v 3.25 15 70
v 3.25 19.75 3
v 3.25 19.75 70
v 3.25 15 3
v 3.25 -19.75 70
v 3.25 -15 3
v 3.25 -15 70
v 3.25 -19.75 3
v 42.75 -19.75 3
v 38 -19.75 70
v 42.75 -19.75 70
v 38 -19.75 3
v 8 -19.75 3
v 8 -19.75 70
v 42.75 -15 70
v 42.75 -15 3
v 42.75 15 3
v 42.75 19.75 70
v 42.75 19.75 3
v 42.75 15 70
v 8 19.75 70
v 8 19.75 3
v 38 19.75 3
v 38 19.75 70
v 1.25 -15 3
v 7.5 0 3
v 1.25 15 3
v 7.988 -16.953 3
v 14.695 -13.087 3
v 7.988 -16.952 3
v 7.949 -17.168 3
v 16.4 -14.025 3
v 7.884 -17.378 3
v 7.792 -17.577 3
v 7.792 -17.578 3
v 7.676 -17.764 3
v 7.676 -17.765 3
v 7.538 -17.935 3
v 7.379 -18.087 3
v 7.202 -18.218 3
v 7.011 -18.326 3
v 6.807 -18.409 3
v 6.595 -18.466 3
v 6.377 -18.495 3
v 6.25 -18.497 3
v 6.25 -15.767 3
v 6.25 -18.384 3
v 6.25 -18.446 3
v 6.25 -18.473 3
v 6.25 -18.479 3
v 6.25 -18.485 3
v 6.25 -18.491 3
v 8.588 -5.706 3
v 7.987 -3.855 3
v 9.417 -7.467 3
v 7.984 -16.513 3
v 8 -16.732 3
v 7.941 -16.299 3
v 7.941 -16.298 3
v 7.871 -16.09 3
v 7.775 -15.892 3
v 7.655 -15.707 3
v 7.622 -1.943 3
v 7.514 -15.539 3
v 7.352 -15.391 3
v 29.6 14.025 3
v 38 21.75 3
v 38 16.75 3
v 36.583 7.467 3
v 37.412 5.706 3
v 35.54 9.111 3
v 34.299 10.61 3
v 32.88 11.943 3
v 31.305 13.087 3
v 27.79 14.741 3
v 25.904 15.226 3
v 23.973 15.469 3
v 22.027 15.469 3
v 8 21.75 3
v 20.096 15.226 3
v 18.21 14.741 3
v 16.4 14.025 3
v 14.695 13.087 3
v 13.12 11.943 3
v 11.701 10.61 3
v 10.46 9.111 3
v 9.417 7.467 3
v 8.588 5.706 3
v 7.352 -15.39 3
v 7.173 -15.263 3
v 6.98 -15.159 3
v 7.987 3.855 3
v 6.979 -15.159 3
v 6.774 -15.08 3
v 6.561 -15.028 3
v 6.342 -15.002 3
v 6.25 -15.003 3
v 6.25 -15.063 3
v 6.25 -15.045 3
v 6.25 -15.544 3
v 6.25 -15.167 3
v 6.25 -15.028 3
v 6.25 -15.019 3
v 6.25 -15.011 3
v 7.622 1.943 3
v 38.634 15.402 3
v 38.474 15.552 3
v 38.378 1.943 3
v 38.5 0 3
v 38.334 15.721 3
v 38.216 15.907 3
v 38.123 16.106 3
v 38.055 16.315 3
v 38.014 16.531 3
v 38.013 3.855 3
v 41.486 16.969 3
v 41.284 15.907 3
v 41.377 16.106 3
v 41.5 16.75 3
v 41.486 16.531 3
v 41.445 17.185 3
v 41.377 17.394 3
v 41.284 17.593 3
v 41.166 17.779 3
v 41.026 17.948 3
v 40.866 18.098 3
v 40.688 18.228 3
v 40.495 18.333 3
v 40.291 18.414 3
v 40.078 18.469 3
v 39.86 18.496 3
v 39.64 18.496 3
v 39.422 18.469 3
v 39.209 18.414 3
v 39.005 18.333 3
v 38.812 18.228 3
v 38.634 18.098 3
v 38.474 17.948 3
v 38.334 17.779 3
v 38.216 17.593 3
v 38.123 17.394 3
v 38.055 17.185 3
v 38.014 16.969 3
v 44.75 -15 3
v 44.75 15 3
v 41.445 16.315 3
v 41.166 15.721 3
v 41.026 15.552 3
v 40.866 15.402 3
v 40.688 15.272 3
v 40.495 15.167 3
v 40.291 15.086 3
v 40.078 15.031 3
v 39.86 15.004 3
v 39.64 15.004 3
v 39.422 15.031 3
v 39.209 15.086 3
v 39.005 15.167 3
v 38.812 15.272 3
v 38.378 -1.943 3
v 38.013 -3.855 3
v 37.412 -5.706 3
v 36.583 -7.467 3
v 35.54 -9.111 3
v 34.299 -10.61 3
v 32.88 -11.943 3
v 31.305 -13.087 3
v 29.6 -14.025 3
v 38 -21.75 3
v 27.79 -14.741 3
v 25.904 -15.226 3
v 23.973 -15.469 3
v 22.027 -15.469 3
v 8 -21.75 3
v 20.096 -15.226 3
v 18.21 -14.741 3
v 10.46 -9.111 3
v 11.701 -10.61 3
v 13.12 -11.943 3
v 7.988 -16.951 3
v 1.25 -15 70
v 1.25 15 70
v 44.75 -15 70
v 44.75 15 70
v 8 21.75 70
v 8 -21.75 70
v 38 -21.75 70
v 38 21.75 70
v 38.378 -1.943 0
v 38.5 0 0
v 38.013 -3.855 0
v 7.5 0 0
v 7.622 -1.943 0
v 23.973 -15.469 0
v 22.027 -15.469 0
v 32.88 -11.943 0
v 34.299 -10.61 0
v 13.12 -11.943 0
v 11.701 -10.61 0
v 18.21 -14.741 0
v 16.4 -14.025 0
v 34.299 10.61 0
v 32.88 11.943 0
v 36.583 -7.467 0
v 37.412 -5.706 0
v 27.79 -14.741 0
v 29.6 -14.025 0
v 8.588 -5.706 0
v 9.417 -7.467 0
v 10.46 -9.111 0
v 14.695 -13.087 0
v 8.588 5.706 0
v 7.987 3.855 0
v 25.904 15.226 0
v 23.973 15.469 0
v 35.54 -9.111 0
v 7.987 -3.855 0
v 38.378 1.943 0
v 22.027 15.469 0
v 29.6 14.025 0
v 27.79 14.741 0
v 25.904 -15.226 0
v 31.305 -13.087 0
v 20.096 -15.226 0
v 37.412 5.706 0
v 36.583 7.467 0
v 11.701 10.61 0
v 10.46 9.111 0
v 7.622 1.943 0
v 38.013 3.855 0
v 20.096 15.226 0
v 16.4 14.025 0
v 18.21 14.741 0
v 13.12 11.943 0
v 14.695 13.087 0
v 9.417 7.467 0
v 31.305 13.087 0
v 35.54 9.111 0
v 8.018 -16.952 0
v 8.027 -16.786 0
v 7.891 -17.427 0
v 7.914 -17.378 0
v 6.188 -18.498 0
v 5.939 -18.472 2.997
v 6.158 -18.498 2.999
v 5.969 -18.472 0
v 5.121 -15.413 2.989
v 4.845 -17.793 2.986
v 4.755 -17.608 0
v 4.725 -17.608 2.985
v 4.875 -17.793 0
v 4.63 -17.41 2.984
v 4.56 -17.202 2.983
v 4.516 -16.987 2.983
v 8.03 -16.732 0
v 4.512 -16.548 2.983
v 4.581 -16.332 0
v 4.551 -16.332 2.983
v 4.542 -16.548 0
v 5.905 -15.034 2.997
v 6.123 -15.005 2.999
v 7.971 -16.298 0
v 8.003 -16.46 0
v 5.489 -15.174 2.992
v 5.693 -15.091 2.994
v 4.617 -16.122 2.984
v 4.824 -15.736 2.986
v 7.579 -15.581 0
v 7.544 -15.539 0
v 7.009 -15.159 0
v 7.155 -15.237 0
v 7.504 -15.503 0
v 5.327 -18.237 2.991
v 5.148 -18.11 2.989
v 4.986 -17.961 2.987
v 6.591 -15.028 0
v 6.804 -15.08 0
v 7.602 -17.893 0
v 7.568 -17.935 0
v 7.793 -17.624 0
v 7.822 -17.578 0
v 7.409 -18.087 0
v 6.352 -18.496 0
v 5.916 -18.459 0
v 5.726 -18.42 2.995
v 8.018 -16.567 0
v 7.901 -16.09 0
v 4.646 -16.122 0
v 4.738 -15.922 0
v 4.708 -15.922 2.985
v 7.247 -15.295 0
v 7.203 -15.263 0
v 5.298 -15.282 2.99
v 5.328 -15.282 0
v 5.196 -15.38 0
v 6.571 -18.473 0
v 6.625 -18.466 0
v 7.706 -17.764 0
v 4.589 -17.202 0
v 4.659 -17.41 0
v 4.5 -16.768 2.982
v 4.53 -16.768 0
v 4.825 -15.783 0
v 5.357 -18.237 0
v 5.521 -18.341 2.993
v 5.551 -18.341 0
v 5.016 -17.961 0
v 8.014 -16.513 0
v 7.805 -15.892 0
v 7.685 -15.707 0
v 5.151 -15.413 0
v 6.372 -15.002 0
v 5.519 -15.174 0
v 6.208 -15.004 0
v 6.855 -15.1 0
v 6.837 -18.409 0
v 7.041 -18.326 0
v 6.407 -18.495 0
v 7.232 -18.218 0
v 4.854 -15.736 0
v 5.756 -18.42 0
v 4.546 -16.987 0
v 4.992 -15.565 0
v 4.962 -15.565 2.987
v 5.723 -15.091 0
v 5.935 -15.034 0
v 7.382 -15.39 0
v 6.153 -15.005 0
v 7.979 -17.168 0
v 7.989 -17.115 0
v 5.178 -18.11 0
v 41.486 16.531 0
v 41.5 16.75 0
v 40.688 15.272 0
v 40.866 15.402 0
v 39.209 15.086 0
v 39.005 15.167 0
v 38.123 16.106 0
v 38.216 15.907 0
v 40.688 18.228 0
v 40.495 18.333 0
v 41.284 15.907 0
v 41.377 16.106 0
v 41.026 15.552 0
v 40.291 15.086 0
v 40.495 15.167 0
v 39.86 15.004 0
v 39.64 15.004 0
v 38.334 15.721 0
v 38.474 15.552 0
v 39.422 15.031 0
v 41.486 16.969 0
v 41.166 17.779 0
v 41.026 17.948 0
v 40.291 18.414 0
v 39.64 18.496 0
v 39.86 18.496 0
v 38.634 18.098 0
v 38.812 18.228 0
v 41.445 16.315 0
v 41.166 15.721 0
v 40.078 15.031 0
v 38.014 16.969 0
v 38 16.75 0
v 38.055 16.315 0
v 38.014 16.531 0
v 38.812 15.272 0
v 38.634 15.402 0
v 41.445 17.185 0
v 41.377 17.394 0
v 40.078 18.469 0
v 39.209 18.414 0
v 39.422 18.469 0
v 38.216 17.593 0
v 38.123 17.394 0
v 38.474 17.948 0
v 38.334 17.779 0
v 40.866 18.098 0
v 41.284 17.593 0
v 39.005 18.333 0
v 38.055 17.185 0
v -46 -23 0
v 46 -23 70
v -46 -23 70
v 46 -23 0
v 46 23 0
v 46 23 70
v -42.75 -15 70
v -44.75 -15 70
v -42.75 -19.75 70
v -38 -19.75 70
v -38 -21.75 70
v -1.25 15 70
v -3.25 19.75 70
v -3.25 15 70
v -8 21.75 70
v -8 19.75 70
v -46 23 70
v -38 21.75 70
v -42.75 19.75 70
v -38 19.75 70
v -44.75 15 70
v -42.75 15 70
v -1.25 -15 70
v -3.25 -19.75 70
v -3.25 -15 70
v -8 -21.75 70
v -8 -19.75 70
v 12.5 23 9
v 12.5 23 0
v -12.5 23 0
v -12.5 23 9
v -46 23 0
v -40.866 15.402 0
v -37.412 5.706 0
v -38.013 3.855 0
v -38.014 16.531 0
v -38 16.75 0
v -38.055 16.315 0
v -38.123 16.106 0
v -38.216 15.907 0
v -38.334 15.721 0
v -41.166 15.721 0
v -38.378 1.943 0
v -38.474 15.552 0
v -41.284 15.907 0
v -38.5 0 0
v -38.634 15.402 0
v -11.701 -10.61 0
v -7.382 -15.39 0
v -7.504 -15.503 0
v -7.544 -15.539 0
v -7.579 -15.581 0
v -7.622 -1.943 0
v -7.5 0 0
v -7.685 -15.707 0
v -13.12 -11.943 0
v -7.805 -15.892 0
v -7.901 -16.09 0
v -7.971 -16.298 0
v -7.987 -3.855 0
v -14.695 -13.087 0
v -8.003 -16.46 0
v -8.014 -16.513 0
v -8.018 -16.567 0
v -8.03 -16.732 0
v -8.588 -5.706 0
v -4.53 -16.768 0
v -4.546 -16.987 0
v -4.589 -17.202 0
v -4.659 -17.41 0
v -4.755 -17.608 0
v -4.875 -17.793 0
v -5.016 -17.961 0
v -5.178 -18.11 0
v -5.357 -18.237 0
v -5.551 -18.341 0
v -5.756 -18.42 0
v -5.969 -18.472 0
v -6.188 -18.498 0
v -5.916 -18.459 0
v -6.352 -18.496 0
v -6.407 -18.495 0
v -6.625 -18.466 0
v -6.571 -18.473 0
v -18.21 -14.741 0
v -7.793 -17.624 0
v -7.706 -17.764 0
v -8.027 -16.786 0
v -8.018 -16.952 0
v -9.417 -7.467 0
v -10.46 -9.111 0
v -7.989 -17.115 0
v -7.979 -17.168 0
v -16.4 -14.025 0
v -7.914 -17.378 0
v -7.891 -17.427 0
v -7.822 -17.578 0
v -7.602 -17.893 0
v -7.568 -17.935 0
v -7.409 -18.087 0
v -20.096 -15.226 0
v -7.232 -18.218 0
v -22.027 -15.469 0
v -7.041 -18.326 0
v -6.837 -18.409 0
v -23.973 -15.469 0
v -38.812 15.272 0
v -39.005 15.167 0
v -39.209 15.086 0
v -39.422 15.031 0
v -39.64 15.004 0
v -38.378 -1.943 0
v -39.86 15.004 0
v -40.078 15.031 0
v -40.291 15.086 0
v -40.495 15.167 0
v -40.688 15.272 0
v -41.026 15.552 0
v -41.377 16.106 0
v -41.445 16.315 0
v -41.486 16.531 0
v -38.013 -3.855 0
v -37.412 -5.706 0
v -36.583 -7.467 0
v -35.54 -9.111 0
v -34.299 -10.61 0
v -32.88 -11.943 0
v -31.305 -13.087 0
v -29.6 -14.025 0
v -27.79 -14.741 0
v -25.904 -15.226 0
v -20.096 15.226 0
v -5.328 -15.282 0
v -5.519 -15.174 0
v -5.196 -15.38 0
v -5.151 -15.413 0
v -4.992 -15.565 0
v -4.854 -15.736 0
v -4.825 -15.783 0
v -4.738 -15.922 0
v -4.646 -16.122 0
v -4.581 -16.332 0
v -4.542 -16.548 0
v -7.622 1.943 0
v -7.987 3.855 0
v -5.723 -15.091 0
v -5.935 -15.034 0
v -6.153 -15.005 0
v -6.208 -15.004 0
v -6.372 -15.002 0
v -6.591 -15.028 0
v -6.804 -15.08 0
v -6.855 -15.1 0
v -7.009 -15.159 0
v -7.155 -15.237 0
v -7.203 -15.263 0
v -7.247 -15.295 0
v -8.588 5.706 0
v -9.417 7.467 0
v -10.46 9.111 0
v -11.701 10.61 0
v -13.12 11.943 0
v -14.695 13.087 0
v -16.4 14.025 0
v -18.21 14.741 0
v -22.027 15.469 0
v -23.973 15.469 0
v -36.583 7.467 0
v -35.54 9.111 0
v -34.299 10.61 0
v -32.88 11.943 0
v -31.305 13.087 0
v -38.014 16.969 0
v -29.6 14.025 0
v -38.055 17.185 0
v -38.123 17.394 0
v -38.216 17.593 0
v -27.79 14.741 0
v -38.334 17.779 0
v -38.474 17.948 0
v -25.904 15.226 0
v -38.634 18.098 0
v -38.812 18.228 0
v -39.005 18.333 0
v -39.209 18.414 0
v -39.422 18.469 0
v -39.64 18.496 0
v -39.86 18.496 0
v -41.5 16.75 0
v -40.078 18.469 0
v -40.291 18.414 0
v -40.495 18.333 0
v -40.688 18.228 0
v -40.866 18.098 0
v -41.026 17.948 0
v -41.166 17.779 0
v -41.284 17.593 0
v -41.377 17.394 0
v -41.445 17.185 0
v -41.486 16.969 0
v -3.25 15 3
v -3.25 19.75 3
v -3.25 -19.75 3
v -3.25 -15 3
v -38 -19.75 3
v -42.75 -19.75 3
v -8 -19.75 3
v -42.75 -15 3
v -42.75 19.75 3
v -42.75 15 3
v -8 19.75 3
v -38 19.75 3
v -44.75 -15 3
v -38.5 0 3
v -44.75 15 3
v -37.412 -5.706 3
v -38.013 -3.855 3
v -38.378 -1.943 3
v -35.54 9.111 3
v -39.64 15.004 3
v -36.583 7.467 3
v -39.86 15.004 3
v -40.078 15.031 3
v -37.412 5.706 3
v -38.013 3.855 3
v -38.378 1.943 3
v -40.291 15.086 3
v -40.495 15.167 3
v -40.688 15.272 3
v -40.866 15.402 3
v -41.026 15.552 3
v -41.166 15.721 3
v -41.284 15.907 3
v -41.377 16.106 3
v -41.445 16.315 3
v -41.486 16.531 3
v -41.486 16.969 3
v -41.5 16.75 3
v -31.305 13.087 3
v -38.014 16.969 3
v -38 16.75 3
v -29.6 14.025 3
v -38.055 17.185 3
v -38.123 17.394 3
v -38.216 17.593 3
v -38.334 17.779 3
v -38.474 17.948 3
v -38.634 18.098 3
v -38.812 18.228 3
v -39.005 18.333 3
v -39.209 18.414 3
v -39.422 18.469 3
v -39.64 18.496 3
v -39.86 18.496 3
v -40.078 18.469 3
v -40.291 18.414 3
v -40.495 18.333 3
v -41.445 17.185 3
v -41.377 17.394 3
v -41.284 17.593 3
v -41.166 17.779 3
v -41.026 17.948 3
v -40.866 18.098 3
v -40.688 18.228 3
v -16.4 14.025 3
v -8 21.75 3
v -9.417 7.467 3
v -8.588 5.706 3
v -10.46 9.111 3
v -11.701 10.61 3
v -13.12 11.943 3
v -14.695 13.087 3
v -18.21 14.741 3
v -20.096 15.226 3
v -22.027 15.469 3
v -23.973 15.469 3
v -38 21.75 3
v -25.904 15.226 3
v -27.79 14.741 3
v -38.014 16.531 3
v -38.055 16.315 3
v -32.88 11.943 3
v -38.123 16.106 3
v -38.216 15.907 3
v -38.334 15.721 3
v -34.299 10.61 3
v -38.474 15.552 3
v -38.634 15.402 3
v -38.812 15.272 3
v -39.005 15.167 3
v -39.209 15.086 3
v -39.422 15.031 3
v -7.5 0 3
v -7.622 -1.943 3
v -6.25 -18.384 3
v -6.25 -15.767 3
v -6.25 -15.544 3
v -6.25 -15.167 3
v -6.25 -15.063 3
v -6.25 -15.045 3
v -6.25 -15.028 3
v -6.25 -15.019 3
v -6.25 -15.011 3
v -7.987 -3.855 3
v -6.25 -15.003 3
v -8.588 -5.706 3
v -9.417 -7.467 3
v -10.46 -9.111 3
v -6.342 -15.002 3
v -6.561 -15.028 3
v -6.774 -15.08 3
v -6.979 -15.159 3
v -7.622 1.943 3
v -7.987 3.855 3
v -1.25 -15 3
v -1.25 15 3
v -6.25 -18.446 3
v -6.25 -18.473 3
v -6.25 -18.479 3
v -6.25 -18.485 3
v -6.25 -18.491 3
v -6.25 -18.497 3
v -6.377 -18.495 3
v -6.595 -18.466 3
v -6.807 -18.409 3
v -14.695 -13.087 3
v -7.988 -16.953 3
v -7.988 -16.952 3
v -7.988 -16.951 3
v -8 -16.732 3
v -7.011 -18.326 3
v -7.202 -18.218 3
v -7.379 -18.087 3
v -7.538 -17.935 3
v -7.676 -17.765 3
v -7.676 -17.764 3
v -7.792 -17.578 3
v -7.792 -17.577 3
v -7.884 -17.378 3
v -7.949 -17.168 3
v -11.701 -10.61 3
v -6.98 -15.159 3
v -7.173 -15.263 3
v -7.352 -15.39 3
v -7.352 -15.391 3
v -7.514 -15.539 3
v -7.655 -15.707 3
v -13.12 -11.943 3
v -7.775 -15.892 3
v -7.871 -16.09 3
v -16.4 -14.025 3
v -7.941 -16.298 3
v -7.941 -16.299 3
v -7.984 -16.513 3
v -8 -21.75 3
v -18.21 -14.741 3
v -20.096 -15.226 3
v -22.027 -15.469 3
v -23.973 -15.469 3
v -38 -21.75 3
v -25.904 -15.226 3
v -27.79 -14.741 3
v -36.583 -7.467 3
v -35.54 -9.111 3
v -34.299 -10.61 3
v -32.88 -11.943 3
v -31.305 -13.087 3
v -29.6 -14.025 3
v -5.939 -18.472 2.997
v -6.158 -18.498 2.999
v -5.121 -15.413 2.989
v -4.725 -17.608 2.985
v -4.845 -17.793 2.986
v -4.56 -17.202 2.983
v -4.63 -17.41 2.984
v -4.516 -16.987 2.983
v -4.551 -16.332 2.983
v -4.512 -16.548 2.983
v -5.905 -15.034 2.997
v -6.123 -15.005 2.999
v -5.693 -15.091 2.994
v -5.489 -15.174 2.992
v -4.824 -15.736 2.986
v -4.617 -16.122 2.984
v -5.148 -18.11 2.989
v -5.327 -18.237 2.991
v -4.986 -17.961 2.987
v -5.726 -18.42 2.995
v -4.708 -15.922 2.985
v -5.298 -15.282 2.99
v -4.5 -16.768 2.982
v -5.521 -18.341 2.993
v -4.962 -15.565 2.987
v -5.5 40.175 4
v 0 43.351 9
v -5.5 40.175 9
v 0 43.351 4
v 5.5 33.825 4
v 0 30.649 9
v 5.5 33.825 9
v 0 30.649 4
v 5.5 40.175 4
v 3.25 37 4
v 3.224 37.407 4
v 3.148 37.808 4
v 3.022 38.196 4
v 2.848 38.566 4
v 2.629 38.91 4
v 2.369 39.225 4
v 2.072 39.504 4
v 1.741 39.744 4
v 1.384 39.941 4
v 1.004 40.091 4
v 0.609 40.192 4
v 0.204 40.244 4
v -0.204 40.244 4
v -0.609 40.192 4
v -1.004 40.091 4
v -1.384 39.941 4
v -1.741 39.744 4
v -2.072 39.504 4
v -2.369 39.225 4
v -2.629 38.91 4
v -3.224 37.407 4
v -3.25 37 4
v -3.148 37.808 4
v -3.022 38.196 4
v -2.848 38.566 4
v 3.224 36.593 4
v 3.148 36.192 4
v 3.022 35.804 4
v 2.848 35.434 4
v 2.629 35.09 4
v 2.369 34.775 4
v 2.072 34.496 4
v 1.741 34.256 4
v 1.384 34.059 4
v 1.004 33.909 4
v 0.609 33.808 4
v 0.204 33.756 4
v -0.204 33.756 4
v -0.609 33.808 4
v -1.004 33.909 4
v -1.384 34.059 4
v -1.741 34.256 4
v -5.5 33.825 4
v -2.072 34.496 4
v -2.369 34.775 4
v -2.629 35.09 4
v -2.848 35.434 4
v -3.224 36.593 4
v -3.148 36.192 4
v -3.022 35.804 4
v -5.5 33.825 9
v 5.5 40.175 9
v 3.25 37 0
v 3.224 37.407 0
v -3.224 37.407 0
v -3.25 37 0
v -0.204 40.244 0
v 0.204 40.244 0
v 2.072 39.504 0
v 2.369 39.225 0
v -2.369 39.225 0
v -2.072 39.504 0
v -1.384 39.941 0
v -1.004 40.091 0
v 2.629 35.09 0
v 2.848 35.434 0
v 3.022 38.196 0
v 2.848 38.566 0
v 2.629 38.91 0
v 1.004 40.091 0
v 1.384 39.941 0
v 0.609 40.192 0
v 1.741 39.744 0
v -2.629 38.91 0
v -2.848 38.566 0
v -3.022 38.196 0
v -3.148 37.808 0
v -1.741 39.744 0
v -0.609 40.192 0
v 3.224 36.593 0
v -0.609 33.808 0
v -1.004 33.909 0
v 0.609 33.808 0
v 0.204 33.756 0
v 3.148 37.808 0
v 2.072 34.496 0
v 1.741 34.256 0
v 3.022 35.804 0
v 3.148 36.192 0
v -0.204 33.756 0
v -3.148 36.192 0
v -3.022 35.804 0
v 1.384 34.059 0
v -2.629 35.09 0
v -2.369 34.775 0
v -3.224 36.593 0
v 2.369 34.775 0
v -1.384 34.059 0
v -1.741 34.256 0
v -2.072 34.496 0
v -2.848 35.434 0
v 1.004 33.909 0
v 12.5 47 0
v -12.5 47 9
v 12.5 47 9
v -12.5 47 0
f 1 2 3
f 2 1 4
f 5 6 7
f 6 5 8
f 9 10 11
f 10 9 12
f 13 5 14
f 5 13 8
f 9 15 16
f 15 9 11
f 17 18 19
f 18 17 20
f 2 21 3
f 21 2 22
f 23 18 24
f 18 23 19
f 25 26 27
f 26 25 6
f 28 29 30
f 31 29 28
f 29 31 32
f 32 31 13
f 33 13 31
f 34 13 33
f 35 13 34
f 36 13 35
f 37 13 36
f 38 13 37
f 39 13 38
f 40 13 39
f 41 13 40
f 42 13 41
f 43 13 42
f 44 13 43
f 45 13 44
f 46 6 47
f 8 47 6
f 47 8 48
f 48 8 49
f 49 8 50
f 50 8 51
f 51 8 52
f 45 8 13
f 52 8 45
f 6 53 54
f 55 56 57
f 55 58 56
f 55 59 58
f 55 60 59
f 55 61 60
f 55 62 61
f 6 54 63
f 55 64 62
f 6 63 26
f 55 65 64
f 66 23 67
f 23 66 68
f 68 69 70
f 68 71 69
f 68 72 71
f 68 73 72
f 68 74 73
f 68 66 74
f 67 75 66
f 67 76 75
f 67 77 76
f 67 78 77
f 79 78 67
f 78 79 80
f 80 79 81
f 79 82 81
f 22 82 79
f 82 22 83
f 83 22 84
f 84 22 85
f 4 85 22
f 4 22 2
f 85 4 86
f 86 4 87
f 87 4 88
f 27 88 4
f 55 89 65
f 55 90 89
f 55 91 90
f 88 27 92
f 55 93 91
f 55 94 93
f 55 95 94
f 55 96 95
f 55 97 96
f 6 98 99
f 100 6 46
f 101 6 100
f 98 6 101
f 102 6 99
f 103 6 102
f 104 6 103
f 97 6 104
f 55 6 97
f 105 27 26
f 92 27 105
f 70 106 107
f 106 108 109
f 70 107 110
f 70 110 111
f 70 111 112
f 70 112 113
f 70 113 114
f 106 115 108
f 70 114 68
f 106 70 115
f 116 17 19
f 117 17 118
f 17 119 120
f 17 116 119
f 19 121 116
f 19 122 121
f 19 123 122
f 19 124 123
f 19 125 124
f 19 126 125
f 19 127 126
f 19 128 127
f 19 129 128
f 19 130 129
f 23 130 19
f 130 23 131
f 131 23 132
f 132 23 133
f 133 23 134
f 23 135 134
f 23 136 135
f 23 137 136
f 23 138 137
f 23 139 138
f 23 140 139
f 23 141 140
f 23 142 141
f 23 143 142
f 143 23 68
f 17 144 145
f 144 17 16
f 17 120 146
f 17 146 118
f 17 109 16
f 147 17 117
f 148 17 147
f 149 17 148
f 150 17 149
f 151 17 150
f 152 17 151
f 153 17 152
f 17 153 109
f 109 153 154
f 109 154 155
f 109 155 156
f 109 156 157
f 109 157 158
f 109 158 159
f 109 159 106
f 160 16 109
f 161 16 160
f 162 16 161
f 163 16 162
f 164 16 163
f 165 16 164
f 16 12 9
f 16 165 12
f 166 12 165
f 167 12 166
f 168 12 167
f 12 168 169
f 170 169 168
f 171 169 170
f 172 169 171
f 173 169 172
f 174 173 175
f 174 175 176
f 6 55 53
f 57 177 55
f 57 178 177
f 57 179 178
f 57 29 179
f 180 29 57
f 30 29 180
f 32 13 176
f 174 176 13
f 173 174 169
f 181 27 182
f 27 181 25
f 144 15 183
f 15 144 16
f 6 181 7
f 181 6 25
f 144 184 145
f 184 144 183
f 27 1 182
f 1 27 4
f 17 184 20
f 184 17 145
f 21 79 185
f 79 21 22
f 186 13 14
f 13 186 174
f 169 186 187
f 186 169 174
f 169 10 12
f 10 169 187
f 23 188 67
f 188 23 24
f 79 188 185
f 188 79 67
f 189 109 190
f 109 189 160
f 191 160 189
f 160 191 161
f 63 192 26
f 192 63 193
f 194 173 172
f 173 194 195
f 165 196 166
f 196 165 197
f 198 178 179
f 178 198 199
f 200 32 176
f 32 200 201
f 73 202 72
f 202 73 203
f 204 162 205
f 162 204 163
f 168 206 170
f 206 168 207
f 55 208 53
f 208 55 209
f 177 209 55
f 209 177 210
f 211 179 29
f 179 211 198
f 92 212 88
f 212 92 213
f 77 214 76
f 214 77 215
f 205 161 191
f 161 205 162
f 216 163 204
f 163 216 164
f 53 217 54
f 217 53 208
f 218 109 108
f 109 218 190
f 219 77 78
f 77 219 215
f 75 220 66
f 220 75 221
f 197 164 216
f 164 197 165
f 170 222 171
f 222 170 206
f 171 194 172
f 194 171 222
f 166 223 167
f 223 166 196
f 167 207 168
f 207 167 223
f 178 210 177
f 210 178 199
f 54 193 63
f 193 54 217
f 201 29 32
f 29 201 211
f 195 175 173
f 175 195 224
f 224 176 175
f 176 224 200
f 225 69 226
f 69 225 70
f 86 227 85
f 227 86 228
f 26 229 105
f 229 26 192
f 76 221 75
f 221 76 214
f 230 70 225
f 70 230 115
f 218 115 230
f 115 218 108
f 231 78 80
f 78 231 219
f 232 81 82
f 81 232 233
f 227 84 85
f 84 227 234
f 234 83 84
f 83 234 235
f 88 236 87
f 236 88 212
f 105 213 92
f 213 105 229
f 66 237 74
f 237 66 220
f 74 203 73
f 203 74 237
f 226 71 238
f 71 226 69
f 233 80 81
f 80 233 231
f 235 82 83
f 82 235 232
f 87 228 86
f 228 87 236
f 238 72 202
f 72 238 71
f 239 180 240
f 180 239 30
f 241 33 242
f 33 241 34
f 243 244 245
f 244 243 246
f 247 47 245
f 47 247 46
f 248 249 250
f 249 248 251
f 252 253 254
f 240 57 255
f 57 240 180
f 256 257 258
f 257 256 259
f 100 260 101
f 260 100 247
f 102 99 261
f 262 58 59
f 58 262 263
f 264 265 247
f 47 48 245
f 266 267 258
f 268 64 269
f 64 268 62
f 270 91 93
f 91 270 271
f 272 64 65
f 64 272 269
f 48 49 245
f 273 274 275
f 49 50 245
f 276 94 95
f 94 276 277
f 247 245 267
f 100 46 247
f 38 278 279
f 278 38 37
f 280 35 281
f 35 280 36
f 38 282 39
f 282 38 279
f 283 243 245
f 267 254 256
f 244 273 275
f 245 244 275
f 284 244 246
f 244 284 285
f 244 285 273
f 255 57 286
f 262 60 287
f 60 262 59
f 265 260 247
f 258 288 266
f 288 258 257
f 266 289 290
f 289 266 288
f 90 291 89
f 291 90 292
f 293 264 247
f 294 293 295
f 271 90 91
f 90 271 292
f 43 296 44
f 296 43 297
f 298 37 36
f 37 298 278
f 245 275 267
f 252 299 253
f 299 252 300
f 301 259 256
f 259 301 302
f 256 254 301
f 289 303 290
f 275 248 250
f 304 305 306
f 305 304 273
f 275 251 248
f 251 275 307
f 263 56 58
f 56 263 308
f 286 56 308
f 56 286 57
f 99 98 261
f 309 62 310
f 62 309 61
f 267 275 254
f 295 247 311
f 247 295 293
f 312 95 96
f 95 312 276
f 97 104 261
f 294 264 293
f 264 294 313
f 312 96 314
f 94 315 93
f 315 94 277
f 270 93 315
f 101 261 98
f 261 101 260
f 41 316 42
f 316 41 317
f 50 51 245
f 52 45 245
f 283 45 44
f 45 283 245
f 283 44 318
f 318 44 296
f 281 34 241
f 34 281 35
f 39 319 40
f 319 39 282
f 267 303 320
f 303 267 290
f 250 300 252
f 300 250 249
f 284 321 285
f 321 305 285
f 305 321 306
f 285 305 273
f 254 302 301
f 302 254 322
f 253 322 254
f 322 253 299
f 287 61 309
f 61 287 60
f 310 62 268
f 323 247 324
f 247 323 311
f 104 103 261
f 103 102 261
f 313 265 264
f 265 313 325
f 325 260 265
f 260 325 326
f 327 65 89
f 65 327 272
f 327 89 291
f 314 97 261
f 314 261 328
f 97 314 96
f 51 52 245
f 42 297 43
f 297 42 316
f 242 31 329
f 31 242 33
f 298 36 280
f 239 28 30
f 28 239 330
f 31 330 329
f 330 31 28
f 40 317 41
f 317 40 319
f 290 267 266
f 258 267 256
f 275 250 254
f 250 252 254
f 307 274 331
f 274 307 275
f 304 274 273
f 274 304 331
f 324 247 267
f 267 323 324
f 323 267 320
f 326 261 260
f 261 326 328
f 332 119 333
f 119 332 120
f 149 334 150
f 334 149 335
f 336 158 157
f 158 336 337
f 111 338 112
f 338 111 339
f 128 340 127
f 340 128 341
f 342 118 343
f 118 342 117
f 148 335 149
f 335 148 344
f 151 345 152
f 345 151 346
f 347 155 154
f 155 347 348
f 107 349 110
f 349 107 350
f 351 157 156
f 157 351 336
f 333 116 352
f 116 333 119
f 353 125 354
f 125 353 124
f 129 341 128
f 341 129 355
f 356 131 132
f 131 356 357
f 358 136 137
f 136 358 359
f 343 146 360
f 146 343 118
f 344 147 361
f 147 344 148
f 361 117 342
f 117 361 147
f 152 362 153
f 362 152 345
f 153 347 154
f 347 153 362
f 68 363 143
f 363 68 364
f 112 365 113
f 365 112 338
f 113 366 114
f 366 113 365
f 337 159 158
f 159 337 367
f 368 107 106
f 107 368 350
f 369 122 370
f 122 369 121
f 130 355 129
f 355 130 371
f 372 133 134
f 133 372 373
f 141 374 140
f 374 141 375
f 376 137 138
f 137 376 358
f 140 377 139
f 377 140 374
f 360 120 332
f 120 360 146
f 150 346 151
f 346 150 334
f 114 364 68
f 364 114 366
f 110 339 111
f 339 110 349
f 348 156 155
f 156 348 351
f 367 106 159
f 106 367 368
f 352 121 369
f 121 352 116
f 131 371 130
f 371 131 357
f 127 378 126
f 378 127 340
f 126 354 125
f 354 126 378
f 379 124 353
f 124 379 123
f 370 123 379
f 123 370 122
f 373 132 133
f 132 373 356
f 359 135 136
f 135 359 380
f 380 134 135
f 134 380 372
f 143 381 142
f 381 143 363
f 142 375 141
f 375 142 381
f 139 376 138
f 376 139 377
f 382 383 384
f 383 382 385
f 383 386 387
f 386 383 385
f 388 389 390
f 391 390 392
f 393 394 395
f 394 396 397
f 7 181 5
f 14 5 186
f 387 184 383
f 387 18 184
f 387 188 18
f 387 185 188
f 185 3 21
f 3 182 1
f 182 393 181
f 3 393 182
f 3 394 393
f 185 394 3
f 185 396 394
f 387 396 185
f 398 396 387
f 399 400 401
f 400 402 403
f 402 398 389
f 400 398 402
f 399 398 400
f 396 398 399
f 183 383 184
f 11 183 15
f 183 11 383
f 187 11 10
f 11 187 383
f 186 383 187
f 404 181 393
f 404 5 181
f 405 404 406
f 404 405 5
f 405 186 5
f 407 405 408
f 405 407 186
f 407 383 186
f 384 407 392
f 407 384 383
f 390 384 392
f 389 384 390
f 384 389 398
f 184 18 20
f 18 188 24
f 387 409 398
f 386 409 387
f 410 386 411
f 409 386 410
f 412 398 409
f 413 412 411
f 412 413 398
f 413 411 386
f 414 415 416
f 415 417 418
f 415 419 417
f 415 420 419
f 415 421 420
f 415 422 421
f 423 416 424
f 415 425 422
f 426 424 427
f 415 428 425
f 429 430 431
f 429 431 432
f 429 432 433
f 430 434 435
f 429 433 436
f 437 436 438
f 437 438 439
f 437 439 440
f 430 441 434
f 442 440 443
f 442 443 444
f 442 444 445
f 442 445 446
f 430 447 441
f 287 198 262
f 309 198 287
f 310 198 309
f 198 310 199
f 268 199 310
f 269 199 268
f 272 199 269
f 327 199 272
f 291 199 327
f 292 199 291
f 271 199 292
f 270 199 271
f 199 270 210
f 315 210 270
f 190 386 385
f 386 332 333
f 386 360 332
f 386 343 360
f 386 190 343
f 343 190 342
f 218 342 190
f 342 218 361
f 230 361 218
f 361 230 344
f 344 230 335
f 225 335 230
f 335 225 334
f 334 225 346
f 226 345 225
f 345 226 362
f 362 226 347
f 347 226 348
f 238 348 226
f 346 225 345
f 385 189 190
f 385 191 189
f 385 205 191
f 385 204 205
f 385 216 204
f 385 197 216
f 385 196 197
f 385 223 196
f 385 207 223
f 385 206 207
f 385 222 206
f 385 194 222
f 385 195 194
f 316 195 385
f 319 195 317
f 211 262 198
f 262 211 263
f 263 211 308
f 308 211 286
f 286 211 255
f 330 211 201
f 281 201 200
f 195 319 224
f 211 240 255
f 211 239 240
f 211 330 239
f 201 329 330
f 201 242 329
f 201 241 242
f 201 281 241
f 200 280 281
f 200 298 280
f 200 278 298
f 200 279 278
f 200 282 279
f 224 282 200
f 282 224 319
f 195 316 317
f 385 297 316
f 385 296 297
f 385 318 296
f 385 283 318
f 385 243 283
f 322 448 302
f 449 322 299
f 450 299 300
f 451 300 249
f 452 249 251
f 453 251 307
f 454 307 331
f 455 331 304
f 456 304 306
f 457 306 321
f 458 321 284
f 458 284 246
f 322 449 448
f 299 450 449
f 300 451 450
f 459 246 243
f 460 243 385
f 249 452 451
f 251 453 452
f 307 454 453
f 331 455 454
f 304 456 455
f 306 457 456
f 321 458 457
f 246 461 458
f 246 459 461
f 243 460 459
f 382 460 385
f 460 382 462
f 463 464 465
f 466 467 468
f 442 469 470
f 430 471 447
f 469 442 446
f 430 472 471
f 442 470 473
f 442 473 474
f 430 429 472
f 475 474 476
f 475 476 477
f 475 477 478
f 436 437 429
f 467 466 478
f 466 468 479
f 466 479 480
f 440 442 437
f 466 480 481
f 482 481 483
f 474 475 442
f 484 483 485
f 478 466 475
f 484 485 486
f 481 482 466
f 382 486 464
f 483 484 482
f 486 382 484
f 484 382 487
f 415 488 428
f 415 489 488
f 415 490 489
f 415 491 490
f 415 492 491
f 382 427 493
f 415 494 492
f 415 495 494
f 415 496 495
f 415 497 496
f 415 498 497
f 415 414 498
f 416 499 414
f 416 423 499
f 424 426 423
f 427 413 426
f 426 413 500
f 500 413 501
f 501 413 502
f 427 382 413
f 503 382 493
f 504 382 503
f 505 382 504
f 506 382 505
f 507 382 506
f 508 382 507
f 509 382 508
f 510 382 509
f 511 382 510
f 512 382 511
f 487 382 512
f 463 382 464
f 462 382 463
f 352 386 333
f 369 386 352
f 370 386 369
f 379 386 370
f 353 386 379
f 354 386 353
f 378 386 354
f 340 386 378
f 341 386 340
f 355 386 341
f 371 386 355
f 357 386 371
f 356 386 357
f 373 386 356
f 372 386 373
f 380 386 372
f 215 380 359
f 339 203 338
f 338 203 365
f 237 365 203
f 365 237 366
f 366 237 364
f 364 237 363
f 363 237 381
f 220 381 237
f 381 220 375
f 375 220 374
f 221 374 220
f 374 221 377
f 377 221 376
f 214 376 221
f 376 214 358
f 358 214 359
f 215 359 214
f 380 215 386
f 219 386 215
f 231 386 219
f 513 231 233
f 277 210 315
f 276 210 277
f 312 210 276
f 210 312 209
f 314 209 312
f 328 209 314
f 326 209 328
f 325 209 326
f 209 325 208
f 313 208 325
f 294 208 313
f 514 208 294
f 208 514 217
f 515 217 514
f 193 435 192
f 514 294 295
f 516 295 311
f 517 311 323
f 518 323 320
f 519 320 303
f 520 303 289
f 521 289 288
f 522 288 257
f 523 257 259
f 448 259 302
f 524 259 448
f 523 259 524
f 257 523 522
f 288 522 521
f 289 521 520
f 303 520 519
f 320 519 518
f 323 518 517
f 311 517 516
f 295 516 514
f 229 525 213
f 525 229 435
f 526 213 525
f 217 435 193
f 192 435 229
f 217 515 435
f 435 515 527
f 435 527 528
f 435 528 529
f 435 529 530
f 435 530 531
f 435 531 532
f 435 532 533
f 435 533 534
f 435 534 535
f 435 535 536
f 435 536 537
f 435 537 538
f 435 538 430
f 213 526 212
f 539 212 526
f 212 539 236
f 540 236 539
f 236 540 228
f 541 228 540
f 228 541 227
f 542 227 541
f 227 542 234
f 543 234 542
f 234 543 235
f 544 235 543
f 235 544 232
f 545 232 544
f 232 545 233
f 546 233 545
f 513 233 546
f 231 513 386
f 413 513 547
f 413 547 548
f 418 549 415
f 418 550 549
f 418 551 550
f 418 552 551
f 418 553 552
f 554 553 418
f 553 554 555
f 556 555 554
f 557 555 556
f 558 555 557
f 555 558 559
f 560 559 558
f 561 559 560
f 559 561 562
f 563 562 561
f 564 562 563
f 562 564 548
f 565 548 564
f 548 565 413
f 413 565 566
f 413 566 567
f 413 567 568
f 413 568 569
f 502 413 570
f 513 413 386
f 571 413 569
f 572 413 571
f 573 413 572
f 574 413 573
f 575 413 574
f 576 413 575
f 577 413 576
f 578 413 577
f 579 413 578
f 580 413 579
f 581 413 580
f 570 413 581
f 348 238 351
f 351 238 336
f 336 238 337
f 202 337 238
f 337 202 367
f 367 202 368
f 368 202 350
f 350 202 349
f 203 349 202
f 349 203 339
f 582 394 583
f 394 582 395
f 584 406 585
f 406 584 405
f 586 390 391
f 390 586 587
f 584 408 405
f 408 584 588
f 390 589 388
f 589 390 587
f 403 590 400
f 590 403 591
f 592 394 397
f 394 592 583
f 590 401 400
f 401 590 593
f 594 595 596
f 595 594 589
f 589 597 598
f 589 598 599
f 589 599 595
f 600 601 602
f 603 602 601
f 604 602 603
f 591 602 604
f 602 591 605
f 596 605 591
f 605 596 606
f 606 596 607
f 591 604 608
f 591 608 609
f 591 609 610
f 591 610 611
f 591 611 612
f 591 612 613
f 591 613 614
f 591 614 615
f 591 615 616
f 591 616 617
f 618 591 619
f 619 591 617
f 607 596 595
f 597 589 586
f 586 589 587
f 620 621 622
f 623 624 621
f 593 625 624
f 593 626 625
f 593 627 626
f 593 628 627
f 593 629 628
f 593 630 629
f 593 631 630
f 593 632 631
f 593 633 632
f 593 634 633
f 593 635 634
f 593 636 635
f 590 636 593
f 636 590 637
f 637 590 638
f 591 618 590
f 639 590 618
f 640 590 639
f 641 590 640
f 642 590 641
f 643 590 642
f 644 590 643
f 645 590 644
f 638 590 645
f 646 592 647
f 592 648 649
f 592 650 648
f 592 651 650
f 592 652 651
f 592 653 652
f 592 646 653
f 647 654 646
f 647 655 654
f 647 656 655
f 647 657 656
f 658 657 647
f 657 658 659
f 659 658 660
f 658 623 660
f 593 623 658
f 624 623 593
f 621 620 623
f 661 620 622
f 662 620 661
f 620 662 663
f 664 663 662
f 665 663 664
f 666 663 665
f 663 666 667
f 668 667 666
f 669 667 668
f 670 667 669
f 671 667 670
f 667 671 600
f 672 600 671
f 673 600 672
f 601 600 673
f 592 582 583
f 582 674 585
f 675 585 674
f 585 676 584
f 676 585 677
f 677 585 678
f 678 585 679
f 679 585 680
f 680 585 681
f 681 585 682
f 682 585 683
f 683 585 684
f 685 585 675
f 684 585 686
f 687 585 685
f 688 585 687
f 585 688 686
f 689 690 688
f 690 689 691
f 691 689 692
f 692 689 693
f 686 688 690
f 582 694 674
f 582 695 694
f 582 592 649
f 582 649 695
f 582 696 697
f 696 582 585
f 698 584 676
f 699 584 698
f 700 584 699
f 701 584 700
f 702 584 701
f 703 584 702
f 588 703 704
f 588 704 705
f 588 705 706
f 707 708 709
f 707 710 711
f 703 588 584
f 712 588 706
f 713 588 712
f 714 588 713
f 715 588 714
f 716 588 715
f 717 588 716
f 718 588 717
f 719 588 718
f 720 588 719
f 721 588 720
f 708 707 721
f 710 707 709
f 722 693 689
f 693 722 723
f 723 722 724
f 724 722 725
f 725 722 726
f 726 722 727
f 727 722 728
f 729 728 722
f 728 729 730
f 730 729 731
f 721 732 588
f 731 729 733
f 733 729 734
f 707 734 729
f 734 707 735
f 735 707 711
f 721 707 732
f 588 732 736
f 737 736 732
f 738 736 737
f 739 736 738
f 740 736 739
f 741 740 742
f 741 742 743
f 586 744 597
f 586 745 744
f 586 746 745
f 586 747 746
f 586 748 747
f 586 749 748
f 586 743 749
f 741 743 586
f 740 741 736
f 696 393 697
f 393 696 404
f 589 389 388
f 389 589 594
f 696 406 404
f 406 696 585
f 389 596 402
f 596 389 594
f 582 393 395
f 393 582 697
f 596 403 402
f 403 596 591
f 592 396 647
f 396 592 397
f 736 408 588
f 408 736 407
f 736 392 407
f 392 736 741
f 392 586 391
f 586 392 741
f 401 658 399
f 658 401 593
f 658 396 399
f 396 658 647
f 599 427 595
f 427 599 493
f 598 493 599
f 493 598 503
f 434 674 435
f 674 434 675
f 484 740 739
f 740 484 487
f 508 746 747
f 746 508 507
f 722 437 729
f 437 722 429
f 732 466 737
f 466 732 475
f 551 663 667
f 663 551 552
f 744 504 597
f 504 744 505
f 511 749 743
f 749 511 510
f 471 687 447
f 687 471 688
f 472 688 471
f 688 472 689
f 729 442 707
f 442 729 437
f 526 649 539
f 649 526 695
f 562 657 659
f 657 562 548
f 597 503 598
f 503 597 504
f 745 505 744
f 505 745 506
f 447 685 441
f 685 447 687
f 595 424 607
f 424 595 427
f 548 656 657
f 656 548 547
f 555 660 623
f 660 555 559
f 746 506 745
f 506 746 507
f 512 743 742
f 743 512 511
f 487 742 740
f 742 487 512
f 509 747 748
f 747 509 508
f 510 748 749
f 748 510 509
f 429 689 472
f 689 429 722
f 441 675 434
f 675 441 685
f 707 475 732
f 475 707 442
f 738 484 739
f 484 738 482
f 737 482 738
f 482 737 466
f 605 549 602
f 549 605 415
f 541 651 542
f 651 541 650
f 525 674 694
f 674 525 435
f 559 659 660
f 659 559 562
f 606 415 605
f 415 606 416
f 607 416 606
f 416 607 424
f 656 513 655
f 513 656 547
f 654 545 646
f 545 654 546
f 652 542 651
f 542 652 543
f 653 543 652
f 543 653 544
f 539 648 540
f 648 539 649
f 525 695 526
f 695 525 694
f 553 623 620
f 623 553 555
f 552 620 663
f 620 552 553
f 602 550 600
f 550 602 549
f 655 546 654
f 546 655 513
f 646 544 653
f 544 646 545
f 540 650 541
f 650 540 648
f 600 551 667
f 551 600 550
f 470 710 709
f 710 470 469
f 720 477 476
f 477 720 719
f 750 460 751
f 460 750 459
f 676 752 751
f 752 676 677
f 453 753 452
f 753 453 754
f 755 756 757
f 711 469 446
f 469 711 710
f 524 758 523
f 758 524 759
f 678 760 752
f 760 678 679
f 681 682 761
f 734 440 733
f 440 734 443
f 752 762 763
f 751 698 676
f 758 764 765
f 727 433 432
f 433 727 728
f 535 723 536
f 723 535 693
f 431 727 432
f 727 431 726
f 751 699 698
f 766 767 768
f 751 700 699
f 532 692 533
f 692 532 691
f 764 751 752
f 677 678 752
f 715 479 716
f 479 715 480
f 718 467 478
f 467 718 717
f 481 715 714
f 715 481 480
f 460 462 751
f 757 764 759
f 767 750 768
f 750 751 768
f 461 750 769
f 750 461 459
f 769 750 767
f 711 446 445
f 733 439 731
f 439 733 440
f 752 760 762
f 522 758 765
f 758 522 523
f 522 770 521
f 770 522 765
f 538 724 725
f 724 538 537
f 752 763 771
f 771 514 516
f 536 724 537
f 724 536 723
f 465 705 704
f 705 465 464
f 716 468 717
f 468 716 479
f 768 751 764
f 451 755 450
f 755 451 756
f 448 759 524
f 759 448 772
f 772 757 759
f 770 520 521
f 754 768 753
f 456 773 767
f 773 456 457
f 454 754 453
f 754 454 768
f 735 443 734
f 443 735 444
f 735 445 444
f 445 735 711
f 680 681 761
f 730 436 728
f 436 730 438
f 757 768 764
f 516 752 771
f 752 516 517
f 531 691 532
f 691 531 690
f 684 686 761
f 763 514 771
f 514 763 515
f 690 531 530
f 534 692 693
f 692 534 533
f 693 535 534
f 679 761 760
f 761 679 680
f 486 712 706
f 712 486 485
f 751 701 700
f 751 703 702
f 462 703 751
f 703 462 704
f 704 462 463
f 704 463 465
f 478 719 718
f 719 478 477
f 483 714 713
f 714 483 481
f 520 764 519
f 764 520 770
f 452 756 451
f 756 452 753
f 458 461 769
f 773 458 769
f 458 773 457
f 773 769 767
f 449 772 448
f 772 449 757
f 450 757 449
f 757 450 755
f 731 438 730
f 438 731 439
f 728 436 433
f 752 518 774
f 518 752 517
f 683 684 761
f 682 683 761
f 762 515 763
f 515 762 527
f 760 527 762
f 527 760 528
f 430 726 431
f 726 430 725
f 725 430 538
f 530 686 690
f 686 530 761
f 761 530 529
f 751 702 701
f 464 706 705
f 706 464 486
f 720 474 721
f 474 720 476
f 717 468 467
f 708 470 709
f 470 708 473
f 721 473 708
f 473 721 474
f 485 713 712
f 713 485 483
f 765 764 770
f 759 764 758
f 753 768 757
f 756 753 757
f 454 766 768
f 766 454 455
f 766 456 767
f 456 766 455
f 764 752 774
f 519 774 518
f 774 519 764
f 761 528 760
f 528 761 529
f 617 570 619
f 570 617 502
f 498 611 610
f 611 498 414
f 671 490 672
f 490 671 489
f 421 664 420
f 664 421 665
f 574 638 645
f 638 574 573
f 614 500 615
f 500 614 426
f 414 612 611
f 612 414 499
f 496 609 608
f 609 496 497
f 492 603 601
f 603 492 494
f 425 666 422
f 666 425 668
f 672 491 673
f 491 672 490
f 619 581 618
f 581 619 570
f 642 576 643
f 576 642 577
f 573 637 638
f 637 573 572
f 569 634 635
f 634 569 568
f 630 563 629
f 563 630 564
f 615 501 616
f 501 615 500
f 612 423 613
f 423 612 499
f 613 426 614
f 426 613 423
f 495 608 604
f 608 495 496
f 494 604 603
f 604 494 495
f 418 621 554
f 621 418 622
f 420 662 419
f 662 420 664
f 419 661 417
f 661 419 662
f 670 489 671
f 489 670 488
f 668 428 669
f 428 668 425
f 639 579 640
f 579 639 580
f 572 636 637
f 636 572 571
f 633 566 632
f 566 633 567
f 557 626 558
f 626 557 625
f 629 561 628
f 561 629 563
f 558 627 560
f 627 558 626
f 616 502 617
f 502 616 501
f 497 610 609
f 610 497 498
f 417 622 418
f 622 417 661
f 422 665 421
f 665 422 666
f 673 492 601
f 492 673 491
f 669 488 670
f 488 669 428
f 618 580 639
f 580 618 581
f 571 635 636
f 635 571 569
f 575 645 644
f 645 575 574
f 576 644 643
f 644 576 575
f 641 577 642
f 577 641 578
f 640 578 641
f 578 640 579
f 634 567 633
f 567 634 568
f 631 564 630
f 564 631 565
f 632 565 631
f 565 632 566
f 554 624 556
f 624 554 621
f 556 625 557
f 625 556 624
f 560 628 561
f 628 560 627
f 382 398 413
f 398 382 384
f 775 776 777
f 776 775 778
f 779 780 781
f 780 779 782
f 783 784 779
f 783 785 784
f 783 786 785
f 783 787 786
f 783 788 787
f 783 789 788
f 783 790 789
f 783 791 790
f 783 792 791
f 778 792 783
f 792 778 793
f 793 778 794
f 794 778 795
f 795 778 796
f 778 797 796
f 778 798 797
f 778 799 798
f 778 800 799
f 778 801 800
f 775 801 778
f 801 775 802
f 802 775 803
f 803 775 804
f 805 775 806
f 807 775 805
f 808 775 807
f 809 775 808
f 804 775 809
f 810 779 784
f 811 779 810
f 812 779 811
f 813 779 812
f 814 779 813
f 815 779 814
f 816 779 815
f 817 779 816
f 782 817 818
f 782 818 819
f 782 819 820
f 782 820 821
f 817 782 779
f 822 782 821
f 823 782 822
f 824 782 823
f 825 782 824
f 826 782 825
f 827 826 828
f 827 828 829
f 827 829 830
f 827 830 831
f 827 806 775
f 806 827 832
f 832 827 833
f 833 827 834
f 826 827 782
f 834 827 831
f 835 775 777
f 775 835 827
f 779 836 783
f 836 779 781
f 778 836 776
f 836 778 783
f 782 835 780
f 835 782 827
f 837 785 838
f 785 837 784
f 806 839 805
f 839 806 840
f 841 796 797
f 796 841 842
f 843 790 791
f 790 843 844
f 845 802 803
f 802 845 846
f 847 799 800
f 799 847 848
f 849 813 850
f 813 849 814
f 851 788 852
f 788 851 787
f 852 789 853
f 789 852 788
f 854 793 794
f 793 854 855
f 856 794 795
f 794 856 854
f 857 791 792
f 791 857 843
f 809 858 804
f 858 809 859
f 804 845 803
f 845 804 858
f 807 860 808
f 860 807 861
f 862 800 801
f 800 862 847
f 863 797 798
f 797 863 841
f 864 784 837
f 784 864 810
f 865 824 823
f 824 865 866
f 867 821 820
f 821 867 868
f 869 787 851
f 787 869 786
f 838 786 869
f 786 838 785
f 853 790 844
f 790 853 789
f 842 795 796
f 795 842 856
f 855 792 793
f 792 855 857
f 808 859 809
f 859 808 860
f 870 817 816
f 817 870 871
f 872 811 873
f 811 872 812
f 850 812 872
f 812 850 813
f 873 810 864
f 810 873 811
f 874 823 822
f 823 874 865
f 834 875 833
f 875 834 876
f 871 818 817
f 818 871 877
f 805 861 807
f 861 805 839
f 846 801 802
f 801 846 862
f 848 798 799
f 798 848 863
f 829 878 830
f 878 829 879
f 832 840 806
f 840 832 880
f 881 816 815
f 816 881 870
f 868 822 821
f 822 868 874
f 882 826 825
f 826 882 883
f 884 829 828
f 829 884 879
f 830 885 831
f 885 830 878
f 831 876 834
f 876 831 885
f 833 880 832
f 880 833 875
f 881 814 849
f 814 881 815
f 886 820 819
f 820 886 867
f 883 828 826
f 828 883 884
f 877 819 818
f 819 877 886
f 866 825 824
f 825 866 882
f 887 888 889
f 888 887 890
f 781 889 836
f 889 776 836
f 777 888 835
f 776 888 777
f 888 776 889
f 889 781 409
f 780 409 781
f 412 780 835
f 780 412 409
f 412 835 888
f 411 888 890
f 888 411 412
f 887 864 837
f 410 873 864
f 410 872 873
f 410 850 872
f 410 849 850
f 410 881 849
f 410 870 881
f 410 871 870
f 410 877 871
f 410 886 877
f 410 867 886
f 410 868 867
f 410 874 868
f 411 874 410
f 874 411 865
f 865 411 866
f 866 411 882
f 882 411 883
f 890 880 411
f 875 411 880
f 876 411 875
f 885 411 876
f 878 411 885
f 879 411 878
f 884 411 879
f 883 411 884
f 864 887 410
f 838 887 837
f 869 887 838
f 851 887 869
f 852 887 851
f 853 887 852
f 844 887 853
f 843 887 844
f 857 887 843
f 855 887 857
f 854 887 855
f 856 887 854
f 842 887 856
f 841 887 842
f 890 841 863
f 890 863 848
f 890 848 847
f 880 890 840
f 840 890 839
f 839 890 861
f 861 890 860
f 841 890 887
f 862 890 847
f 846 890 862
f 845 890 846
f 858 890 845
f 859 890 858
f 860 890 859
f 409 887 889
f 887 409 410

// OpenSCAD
resolution_factor = 1.00;

module quarter_inch_nut_cutout()
{
    union()
    {
        translate([0, 0, -20])
            cylinder(r = 6.5/2, h = 21, $fn = 50*resolution_factor);
        
        for (i = [-60,0,60])
        {
            translate([0, 0, 5.65/2])
            rotate(i, [0, 0, 1])
                cube([11, tan(30)*11, 5.65], center = true);
        }
    }
}

module mountHold(l, w, h)
{
    cube([l, w, h]);        
}    


module camera_cutout()
{
    width = 39.5;
    height = 39.5;
    length = 68;
    cable_well_depth = 4.0;
    cable_well_width= 30.0;
    
    //How much do we pull back 
    translate([0, 3, 0])
    
    union()
    {
        //Basic block of electronics
        translate([0, length/2, 0])
        cube([width, length, height], center = true);
        
        //Channel for cables between electronics
        translate([0, length/2.0, 0])
        cube([width+cable_well_depth, length, cable_well_width], center = true);
        translate([0, length/2.0, 0])
        cube([cable_well_width, length, height+cable_well_depth], center = true);
        
        //Lens hole
        translate([0, 0.01, 0])
        rotate(90, [1, 0, 0])
        //r=15.5 for big || r=12.5 for small
        cylinder(r = 15.5, h = 20, $fn = 50);
        
        //Screwholes
        zz = 33.5/2;
        translate([-zz, 0, zz])
        rotate(90, [1, 0.01, 0])
        cylinder(r = 3.5/2, h = 4, $fn = 50);
        translate([zz, 0.01, -zz])
        rotate(90, [1, 0, 0])
        cylinder(r = 3.5/2, h = 4, $fn = 50);
        
    }
}

module camera()
{
    width = 46;
    //long=70 | short=35
    depth = 70.0;
    difference()
    {
        union()
        {
            
            translate([0, depth/2, 0])
            cube([width, depth, width], center = true);
        }
        camera_cutout();
    }
}

/*CAMERA BOXES DIMENSIONS*/
dispH = 35;
dispV = 30;
distV = 44;

module rotated_camera(){
    translate([23, 0, 0])
    rotate(90, [1, 0, 0])
    camera();
}

module platform(){
     //SCREWBOLD CUTOUT
     difference(){
        rotate(90, [0, 0, 1])
        translate([-15, -12.5, 0])
        mountHold(25, 25, 9);
        translate([0, 0, 4])
        quarter_inch_nut_cutout(); 
         }
     }
//quarter_inch_nut_cutout(); 


union(){
    rotated_camera();
    mirror([10, , 0]) rotated_camera();
    translate([0, 37, 0])
    platform();
}
